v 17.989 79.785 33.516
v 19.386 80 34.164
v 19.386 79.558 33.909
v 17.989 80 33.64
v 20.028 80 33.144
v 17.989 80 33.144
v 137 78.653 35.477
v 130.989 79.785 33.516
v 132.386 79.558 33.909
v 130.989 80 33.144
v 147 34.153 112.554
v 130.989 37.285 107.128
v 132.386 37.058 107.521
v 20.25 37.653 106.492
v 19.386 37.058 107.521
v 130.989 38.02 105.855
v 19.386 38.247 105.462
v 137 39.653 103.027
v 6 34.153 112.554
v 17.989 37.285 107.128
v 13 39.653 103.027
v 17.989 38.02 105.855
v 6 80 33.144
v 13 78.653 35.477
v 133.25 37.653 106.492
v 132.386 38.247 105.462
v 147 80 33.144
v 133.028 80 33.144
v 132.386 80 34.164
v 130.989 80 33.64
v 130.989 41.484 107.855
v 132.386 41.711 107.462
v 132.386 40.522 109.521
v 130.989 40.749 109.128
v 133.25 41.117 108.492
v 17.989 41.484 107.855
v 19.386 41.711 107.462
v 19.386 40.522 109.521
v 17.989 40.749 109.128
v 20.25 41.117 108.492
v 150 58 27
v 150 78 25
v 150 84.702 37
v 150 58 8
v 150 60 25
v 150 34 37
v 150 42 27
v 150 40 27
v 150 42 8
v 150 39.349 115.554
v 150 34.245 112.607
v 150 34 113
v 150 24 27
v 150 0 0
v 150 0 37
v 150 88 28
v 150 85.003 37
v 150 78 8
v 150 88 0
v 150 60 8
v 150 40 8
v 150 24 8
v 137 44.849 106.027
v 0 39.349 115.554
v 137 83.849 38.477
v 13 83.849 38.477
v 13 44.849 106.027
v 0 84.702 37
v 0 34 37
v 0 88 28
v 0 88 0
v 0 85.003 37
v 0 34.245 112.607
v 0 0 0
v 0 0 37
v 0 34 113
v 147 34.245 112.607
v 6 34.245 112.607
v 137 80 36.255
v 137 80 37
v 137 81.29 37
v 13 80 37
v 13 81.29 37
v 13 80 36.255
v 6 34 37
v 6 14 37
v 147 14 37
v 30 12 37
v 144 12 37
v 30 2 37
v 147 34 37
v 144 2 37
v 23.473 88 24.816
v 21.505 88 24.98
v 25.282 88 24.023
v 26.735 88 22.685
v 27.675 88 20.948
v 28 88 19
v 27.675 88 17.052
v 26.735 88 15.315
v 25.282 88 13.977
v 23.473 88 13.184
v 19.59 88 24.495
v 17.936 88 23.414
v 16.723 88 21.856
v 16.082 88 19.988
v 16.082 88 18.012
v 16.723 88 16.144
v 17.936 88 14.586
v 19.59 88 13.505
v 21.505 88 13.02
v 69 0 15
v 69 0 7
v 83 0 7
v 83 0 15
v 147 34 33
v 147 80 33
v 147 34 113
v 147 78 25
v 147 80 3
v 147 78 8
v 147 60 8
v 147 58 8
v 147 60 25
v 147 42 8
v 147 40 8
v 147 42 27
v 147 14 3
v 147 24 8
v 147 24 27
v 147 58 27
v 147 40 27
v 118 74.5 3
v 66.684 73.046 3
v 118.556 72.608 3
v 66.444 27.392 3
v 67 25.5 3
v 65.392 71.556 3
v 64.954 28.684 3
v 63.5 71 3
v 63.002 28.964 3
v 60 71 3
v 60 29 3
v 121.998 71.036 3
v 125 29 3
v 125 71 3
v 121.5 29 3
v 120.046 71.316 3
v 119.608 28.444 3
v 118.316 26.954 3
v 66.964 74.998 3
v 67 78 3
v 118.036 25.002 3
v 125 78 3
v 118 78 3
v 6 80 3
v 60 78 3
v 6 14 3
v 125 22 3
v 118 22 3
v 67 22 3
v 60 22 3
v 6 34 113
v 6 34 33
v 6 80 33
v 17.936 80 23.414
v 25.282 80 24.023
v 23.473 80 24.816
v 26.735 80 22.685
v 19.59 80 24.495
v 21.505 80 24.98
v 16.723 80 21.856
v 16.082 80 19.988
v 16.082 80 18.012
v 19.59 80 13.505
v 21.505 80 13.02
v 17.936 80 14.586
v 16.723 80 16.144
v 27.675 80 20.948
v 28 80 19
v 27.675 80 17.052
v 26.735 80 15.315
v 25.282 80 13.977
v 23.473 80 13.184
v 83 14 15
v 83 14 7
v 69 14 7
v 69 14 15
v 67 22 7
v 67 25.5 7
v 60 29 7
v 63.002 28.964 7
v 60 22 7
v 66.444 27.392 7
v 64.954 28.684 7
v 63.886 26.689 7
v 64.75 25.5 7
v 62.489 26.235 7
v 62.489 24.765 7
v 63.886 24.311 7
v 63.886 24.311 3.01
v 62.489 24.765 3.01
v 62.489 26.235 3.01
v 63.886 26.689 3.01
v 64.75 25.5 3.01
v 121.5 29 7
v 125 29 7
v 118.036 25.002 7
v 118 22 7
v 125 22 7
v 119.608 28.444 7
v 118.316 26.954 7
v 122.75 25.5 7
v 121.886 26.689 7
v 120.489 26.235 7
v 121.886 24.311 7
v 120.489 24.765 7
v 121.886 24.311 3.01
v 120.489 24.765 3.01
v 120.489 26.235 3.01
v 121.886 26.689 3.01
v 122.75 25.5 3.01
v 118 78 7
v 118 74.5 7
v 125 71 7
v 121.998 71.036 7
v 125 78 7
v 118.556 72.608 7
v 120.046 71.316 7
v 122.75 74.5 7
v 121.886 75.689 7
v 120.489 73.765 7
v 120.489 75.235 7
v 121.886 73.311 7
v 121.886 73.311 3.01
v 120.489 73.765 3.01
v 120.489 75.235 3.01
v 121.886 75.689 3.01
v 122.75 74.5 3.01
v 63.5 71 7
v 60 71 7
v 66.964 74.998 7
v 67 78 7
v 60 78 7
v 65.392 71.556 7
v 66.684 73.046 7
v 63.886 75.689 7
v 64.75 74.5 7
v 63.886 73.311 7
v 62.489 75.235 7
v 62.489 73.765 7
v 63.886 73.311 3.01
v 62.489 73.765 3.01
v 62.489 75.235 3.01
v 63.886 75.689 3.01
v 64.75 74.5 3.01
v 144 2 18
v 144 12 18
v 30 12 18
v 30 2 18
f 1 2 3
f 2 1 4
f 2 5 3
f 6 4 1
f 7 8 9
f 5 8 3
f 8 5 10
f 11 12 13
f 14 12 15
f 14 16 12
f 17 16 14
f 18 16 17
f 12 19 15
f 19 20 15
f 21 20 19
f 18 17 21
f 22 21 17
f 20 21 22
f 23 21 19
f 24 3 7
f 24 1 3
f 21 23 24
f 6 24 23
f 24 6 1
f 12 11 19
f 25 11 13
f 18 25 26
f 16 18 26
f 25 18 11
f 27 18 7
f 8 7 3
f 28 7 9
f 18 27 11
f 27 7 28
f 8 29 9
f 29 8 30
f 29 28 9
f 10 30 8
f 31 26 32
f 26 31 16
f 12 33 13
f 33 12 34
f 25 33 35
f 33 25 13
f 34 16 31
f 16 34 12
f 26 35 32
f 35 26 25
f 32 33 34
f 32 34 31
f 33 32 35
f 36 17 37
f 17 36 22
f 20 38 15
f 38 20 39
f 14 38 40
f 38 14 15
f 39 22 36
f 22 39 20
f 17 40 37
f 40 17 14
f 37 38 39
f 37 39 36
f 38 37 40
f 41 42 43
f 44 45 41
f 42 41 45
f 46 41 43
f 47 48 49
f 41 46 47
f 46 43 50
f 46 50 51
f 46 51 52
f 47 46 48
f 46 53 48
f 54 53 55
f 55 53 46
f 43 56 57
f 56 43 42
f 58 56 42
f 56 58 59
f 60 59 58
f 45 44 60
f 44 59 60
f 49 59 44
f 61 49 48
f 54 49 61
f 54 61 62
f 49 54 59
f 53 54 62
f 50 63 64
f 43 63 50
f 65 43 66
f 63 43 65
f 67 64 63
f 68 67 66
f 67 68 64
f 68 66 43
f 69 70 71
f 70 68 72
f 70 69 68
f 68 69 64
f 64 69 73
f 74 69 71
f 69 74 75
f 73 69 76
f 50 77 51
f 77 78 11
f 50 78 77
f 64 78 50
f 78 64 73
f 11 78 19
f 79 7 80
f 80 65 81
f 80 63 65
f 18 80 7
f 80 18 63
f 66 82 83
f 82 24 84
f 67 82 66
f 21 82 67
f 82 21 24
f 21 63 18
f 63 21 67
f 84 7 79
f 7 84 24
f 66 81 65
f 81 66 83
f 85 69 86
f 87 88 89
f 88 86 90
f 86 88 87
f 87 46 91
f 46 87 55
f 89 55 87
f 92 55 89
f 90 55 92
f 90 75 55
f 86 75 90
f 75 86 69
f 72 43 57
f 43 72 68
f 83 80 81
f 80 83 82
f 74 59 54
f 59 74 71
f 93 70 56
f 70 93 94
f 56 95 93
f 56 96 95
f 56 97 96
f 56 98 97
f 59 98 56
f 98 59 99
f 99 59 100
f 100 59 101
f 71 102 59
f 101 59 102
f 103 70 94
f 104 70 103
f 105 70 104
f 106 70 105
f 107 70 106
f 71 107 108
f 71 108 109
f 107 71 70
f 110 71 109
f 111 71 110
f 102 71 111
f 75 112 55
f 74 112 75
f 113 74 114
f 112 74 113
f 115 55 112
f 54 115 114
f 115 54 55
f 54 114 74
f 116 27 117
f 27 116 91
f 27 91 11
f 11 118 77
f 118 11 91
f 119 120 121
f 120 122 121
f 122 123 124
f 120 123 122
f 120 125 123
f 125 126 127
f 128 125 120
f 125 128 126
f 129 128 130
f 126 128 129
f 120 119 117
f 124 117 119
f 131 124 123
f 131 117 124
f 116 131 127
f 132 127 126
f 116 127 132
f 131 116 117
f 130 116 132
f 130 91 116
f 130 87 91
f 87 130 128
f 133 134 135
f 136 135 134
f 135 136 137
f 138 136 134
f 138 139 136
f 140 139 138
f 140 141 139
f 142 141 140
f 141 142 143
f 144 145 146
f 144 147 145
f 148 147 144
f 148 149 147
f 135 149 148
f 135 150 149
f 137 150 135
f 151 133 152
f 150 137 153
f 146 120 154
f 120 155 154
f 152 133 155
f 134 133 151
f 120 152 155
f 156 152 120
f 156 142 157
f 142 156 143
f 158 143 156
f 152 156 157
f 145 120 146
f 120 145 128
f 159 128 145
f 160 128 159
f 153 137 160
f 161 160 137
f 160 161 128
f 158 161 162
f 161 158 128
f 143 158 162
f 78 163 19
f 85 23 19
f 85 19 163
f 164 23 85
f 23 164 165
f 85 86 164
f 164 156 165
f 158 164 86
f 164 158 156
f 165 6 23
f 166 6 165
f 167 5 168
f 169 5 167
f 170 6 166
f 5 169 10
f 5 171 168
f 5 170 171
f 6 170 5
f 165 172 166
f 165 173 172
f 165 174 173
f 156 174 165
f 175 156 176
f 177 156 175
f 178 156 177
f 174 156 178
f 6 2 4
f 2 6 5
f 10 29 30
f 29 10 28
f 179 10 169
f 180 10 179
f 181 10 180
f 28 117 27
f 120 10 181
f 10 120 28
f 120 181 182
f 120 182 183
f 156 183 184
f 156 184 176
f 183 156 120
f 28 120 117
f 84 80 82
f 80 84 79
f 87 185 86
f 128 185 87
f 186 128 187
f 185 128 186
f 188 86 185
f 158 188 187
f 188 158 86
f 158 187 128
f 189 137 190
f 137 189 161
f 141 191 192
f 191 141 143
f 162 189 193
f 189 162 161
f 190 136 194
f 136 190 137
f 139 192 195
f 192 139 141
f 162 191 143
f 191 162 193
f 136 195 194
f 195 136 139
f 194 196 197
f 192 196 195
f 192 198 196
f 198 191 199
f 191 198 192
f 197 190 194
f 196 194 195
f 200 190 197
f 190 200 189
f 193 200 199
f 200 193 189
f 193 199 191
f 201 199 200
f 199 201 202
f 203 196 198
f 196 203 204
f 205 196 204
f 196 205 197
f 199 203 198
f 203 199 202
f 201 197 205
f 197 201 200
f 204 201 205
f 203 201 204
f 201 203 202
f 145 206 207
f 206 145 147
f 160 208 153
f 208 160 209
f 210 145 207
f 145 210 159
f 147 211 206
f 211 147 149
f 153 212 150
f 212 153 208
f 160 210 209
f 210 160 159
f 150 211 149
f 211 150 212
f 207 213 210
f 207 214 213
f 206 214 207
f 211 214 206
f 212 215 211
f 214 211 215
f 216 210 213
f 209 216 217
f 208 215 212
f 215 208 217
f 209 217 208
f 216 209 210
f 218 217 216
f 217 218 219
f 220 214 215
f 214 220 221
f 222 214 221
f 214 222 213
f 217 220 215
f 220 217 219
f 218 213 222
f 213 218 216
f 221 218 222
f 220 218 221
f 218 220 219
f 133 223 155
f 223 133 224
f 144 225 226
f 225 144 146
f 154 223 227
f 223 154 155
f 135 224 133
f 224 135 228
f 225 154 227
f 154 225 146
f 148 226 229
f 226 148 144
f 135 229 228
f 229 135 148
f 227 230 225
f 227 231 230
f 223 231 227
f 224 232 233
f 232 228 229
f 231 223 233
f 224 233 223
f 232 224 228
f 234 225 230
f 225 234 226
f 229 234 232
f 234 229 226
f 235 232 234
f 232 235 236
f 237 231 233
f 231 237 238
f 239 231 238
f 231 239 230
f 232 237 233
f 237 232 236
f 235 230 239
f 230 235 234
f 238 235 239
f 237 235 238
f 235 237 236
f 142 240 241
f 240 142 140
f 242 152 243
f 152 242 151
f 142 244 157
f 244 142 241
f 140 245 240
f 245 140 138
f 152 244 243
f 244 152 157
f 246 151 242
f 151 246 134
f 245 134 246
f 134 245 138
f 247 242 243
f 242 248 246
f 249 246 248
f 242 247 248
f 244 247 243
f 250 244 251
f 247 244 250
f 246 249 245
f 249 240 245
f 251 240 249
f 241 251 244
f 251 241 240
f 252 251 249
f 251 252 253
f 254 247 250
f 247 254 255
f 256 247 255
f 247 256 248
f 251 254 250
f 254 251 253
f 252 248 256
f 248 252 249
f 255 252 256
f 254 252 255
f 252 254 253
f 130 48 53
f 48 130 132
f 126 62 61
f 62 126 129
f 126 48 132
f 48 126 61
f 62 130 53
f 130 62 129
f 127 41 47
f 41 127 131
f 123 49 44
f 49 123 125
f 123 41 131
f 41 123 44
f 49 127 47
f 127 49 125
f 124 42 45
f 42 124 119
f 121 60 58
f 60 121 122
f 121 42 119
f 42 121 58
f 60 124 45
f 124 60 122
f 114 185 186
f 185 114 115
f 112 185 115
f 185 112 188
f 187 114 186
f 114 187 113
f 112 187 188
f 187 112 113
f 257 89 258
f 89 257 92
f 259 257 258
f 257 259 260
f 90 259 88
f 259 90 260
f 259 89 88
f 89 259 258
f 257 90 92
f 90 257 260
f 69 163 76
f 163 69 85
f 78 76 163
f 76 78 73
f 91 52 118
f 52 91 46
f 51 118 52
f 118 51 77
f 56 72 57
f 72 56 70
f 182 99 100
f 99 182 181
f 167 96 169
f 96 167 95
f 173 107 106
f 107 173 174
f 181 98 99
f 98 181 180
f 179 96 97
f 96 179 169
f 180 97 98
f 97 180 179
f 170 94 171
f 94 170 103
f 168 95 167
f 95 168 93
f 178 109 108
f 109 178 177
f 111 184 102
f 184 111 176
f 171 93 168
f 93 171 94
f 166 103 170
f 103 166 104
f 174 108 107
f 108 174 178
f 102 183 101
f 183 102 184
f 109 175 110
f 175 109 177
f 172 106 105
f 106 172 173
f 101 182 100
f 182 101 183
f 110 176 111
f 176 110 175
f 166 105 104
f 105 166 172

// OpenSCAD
// file: ../hinge.scad
axle_gap=1.6;
hinge_gap=1.4;
slop=0.01;
the_hinge_rotate=0;
module __Customizer_Limit__ () {}

box_width=60;
box_height=10;
box_depth=20;
hinge_width=5;
hinge_seperation=4.8;


module test()
{
box_a();

translate([0, 0, hinge_height])
  rotate([0, the_hinge_rotate,0]) 
  translate([0, 0, -hinge_height])
  box_b();

hinge(0, 12, hinge_rotate=the_hinge_rotate);
hinge(0, 48, hinge_rotate=the_hinge_rotate);
}

module hinge(axis, offset, hinge_rise=4.0, hinge_reach=0.1, hinge_reach_2=0.1, axle_thickness=1.2, hinge_width=5, hinge_gap=0.4, hinge_rotate=0, hinge_rotate_b=0)
{
  hinge_arm(axis, offset, hinge_rise, hinge_reach_2, axle_thickness, hinge_width, hinge_gap, hinge_rotate_b);
  hinge_bay(axis, offset, hinge_rise, hinge_reach, axle_thickness, hinge_width, hinge_gap, hinge_rotate);
}

module hinge_arm(axis, offset, hinge_rise, hinge_reach, axle_thickness, hinge_width, hinge_gap, hinge_rotate_b)
{
  axle_radius=axle_thickness*2;
  outer_axle_radius = axle_radius + axle_thickness + axle_gap;

  hinge_height=box_height + hinge_rise;
  translate([axis, offset - hinge_width/2, hinge_height])
  rotate([-90,0,0]) 
  rotate([0,0, -hinge_rotate_b])
  linear_extrude(hinge_width)
  {
    difference()
    {
      hull()
      {
        circle(r = outer_axle_radius);
        translate([hinge_seperation + 10.4, 8, 20])
          square([hinge_reach, hinge_height + 4]);
      }
      circle(r = axle_radius + axle_gap);
    }
  }
}

module hinge_bay(axis, offset, hinge_rise, hinge_reach, axle_thickness, hinge_width, hinge_gap, hinge_rotate)
{
  axle_radius=axle_thickness*2;
  outer_axle_radius = axle_radius + axle_thickness + axle_gap;

  hinge_height=box_height + hinge_rise;
  hinge_bay_width = hinge_width + hinge_gap*2;
  translate([axis, offset - hinge_width - hinge_gap, hinge_height])
  rotate([-90,0,0])
  union()
  {
    rotate([0,0,hinge_rotate])
    difference()
    {
      linear_extrude(hinge_width*2 + hinge_gap*2)
      hull()
      {
        translate([0, 0, - axle_gap])
        circle(r = outer_axle_radius);
        translate([-hinge_seperation-hinge_seperation - hinge_reach, 0, 0])
        square([hinge_reach, hinge_height]);
      }
      
      translate([-hinge_seperation-axle_gap, - outer_axle_radius -.8, hinge_width/2])
        cube([(outer_axle_radius+axle_gap)*2, hinge_height + outer_axle_radius + 1, hinge_bay_width]);

    }

    translate([0, 0, hinge_width/2])
      cylinder(h = hinge_bay_width, r = axle_radius);
  }
}

module box_a()
  {
    translate([hinge_seperation, 0, 0])
    cube([box_depth,box_width,box_height]);    
  }
  
module box_b()
  {
    rotate([0,180,0])
    translate([hinge_seperation, 0, -box_height])
    cube([box_depth,box_width,box_height]);    
  }
// file: ../rpi.scad
 // include <./RPi4board-modded.scad>;



// translate([5, 61, 5])
  // rotate([0, 0, 270])
   // board_raspberrypi_4_model_b();


// rpi4([2, 2, 2], [0, 0, 2]);

def_buffer_top = 3;
def_buffer_bottom = 3;
def_buffer_left = 3;
def_buffer_right = 3;
def_buffer_front = 3;
def_buffer_back = 3;
def_padding_top = 3;
def_padding_bottom = 3;
def_padding_left = 3;
def_padding_right = 0;
def_padding_front = 3;
def_padding_back = 0;




slop=0.01;
2slop=0.02;
module rpi4(
  buffer_top = def_buffer_top, 
  buffer_bottom = def_buffer_bottom, 
  buffer_left = def_buffer_left, 
  buffer_right = def_buffer_right, 
  buffer_front = def_buffer_front, 
  buffer_back = def_buffer_back, 
  padding_top = def_padding_top, 
  padding_bottom = def_padding_bottom, 
  padding_left = def_padding_left, 
  padding_right = def_padding_right, 
  padding_front = def_padding_front, 
  padding_back = def_padding_back, 
  expose_card=false,
  expose_hdmi1=true,
  expose_hdmi2=true,
  expose_power=true,
  expose_usb1=true,
  expose_usb2=true,
  expose_audio=true,
  expose_ethernet=true,
  expose_ribbon_cable=false,
  expose_gpio_pins=false,
  head_room=4
  )
{
  rpi_screws=[58, 49, padding_bottom];
  rpi_size=[85, 56, 4];

  difference() {
    gen_rpi(
        buffer_top, 
        buffer_bottom, 
        buffer_left, 
        buffer_right, 
        buffer_front, 
        buffer_back, 
        padding_top, 
        padding_bottom, 
        padding_left, 
        padding_right, 
        padding_front, 
        padding_back, 

        rpi_screws,
        rpi_size);
  
    translate([
      buffer_left + padding_left + padding_right,
      buffer_back + padding_back,
      buffer_bottom + padding_bottom
    ]) {
      if (expose_usb1) 
        translate([rpi_size.x, 2, 1])
          cube([16, 16, 19]);

      if (expose_usb2) 
        translate([rpi_size.x, 20, 1])
          cube([16, 16, 19]);

      if (expose_ethernet)  
        translate([rpi_size.x, 38, 1])
          cube([16, 18, 17]);
    }
    translate([buffer_left + padding_left, 0, buffer_bottom + padding_bottom]) {
      if (expose_power)  
        translate([9, -slop, 0])
          cube([14, buffer_back+ 2slop, 8]);

      if (expose_hdmi1)  
        translate([26.5, -slop, 0])
          cube([9, buffer_back + 2slop, 5]);

      if (expose_hdmi2)  
        translate([40, -slop, 0])
          cube([9, buffer_back+ 2slop, 5]);

      if (expose_audio)  
        translate([55, -slop, 3])
          rotate([0,90,90])
            cylinder(r=2, h=buffer_back+ 2slop);
    }
  }
}

module rpi0(
  rpi_buffer, 
  rpi_padding,
  expose_card=false,
  expose_hdmi=false,
  expose_usb1=false,
  expose_usb2=false,
  expose_ribbon_cable=false,
  expose_gpio_pins=false,
  head_room=4
  )
{
  rpi_screws=[58, 23, 3];
  rpi_size=[65, 30, 3];

  gen_rpi(rpi_screws, rpi_size, rpi_buffer, rpi_padding);
  
  
  
}

module gen_rpi(
    buffer_top, 
    buffer_bottom, 
    buffer_left, 
    buffer_right, 
    buffer_front, 
    buffer_back, 
    padding_top, 
    padding_bottom, 
    padding_left, 
    padding_right, 
    padding_front, 
    padding_back, 
    rpi_screws, 
    rpi_size
  )
{
  rpi_envelope=rpi_size + [2, 2, 4];

  rpi_cutout = rpi_envelope + [padding_left + padding_right, padding_back + padding_front, padding_bottom + padding_top];
  rpi_origin = [buffer_left, buffer_back, buffer_bottom];
  rpi_buffer = [buffer_left + buffer_right, buffer_back + buffer_front, buffer_bottom + buffer_top];

  difference()
  {
    union()
    {
      difference()
      {
        cube(rpi_cutout + rpi_buffer);
        translate(rpi_origin)
        cube(rpi_cutout + [0, 0, slop]);
      }
      
      translate(rpi_origin + [padding_left, padding_back, 0])
        screws(rpi_screws, padding_bottom);
    }
  }
}

module screws(rpi_screws, screw_height)
{
  screw_mount(screw_height, 0);

  translate([rpi_screws.x, 0, 0])
  screw_mount(screw_height, 90);

  translate([rpi_screws.x, rpi_screws.y, 0])
  screw_mount(screw_height, 180);

  translate([0, rpi_screws.y, 0])
  screw_mount(screw_height, 270);
}

module screw_mount(screw_mount_height, rotation)
{
  difference()
  {
    screw_diameter = 1.25;
    screw_mount_dia = 3.5;
    
    translate([screw_mount_dia/2 + 1.75, screw_mount_dia/2 + 1.75, 0])
    rotate(rotation)
    linear_extrude(screw_mount_height)
    hull() {
      mount_size = screw_mount_dia;
      circle(mount_size);
      polygon([[-mount_size, mount_size], [-mount_size,-mount_size], [mount_size,-mount_size]]);
    }
    translate([screw_mount_dia/2 + 1.75, screw_mount_dia/2 +  1.75, slop])
    cylinder(r = screw_diameter, h = screw_mount_height);
  }
}
// main file
include <../rpi.scad>;
include <../hinge.scad>;
// include <../RPi4board-modded.scad>;

buffer = [4, 4, 8];
padding = [4,4,4];

module __Customizer_Limit__ () {}

// tray();


///translate([20, 103, 0])
 // rotate([0, 0, 270])
//    hinges();

difference() {
  union(){
    translate([0, 72, 3]) {
      rotate([120, 0, 0])
        draw_screen();
    }

    difference() {
      rpi4( padding_top=22,
        padding_front=0,
        padding_back=8,
        padding_bottom = 4,
        padding_left = 54,
        buffer_top = 0,
        buffer_back = 14,
        buffer_front = 8,
        buffer_left=6,
        expose_audio=false,
        expose_hdmi1=false,
        expose_hdmi2=false
      );
      translate([30, 2, 18])
        cube([114, 10, 24]);
    }
      rotate([0,90,0]){
        translate([-113, 34, 0])
        linear_extrude(6)
          polygon( points=[[0, 0], [80,0],[80,50]] );

        translate([-113, 34, 147])
        linear_extrude(3)
          polygon( points=[[0, 0], [80,0],[80,50]] );
      }

  }
  translate([-slop, 88, 26])
    rotate([0,90,0])
      linear_extrude(200)
          polygon( points=[[-2,2], [-2,0],[-11-slop,-3],[-11-slop,2]] );

  translate([22, 88 + slop, 19])
    rotate([90,0,0])
      linear_extrude(8 + 2slop)
        circle(d=12);
}








module hinges() {
    hinge(0, 12, hinge_rise=18, hinge_reach=4.3, axle_thickness=2, hinge_width=20, hinge_gap=1.2);

    hinge(0, 108, hinge_rise=18, hinge_reach=4.3, axle_thickness=2, hinge_width=20, hinge_gap=1.2);
}

module tray() {
  difference() {
    cube([170, 94, 28]);
    translate([4, 4, 4])
      cube([116, 80, 24 + slop]);
    translate([122, 4, 4])
      cube([44, 80, 24 + slop]);
    translate([119, 36, 4])
      cube([4, 20, 24 + slop]);
  }

}

module draw_screen() {
translate([0, 13.8, -28])
  difference() {
    cube([150, 100, 6]);
    translate([13, 11, -slop])
      cube([124, 78, 6 + 2slop]);
    
    translate([19, 8, 2]) {
      cylinder(r = 1.25, h = 4);
       
      translate([113, 0, 0])
        cylinder(r = 1.25, h = 4);
    
      translate([113, 85, 0])
        cylinder(r = 1.25, h = 4);
    
      translate([0, 85, 0])
        cylinder(r = 1.25, h = 4);
      }
  }
}
